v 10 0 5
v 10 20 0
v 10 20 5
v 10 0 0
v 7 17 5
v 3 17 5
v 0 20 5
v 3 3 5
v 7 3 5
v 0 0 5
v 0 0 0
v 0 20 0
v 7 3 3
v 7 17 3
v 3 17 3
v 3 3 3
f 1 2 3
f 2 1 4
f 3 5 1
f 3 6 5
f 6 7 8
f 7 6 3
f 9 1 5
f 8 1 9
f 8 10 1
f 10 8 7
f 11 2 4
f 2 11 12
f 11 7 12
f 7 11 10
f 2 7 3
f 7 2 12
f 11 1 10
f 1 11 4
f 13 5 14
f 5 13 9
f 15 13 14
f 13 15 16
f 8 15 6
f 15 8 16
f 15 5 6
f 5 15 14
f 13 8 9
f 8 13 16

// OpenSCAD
difference() {
    cube([10,20,5]);
    #translate([3,3,3]) cube([4,14,2]);
}
